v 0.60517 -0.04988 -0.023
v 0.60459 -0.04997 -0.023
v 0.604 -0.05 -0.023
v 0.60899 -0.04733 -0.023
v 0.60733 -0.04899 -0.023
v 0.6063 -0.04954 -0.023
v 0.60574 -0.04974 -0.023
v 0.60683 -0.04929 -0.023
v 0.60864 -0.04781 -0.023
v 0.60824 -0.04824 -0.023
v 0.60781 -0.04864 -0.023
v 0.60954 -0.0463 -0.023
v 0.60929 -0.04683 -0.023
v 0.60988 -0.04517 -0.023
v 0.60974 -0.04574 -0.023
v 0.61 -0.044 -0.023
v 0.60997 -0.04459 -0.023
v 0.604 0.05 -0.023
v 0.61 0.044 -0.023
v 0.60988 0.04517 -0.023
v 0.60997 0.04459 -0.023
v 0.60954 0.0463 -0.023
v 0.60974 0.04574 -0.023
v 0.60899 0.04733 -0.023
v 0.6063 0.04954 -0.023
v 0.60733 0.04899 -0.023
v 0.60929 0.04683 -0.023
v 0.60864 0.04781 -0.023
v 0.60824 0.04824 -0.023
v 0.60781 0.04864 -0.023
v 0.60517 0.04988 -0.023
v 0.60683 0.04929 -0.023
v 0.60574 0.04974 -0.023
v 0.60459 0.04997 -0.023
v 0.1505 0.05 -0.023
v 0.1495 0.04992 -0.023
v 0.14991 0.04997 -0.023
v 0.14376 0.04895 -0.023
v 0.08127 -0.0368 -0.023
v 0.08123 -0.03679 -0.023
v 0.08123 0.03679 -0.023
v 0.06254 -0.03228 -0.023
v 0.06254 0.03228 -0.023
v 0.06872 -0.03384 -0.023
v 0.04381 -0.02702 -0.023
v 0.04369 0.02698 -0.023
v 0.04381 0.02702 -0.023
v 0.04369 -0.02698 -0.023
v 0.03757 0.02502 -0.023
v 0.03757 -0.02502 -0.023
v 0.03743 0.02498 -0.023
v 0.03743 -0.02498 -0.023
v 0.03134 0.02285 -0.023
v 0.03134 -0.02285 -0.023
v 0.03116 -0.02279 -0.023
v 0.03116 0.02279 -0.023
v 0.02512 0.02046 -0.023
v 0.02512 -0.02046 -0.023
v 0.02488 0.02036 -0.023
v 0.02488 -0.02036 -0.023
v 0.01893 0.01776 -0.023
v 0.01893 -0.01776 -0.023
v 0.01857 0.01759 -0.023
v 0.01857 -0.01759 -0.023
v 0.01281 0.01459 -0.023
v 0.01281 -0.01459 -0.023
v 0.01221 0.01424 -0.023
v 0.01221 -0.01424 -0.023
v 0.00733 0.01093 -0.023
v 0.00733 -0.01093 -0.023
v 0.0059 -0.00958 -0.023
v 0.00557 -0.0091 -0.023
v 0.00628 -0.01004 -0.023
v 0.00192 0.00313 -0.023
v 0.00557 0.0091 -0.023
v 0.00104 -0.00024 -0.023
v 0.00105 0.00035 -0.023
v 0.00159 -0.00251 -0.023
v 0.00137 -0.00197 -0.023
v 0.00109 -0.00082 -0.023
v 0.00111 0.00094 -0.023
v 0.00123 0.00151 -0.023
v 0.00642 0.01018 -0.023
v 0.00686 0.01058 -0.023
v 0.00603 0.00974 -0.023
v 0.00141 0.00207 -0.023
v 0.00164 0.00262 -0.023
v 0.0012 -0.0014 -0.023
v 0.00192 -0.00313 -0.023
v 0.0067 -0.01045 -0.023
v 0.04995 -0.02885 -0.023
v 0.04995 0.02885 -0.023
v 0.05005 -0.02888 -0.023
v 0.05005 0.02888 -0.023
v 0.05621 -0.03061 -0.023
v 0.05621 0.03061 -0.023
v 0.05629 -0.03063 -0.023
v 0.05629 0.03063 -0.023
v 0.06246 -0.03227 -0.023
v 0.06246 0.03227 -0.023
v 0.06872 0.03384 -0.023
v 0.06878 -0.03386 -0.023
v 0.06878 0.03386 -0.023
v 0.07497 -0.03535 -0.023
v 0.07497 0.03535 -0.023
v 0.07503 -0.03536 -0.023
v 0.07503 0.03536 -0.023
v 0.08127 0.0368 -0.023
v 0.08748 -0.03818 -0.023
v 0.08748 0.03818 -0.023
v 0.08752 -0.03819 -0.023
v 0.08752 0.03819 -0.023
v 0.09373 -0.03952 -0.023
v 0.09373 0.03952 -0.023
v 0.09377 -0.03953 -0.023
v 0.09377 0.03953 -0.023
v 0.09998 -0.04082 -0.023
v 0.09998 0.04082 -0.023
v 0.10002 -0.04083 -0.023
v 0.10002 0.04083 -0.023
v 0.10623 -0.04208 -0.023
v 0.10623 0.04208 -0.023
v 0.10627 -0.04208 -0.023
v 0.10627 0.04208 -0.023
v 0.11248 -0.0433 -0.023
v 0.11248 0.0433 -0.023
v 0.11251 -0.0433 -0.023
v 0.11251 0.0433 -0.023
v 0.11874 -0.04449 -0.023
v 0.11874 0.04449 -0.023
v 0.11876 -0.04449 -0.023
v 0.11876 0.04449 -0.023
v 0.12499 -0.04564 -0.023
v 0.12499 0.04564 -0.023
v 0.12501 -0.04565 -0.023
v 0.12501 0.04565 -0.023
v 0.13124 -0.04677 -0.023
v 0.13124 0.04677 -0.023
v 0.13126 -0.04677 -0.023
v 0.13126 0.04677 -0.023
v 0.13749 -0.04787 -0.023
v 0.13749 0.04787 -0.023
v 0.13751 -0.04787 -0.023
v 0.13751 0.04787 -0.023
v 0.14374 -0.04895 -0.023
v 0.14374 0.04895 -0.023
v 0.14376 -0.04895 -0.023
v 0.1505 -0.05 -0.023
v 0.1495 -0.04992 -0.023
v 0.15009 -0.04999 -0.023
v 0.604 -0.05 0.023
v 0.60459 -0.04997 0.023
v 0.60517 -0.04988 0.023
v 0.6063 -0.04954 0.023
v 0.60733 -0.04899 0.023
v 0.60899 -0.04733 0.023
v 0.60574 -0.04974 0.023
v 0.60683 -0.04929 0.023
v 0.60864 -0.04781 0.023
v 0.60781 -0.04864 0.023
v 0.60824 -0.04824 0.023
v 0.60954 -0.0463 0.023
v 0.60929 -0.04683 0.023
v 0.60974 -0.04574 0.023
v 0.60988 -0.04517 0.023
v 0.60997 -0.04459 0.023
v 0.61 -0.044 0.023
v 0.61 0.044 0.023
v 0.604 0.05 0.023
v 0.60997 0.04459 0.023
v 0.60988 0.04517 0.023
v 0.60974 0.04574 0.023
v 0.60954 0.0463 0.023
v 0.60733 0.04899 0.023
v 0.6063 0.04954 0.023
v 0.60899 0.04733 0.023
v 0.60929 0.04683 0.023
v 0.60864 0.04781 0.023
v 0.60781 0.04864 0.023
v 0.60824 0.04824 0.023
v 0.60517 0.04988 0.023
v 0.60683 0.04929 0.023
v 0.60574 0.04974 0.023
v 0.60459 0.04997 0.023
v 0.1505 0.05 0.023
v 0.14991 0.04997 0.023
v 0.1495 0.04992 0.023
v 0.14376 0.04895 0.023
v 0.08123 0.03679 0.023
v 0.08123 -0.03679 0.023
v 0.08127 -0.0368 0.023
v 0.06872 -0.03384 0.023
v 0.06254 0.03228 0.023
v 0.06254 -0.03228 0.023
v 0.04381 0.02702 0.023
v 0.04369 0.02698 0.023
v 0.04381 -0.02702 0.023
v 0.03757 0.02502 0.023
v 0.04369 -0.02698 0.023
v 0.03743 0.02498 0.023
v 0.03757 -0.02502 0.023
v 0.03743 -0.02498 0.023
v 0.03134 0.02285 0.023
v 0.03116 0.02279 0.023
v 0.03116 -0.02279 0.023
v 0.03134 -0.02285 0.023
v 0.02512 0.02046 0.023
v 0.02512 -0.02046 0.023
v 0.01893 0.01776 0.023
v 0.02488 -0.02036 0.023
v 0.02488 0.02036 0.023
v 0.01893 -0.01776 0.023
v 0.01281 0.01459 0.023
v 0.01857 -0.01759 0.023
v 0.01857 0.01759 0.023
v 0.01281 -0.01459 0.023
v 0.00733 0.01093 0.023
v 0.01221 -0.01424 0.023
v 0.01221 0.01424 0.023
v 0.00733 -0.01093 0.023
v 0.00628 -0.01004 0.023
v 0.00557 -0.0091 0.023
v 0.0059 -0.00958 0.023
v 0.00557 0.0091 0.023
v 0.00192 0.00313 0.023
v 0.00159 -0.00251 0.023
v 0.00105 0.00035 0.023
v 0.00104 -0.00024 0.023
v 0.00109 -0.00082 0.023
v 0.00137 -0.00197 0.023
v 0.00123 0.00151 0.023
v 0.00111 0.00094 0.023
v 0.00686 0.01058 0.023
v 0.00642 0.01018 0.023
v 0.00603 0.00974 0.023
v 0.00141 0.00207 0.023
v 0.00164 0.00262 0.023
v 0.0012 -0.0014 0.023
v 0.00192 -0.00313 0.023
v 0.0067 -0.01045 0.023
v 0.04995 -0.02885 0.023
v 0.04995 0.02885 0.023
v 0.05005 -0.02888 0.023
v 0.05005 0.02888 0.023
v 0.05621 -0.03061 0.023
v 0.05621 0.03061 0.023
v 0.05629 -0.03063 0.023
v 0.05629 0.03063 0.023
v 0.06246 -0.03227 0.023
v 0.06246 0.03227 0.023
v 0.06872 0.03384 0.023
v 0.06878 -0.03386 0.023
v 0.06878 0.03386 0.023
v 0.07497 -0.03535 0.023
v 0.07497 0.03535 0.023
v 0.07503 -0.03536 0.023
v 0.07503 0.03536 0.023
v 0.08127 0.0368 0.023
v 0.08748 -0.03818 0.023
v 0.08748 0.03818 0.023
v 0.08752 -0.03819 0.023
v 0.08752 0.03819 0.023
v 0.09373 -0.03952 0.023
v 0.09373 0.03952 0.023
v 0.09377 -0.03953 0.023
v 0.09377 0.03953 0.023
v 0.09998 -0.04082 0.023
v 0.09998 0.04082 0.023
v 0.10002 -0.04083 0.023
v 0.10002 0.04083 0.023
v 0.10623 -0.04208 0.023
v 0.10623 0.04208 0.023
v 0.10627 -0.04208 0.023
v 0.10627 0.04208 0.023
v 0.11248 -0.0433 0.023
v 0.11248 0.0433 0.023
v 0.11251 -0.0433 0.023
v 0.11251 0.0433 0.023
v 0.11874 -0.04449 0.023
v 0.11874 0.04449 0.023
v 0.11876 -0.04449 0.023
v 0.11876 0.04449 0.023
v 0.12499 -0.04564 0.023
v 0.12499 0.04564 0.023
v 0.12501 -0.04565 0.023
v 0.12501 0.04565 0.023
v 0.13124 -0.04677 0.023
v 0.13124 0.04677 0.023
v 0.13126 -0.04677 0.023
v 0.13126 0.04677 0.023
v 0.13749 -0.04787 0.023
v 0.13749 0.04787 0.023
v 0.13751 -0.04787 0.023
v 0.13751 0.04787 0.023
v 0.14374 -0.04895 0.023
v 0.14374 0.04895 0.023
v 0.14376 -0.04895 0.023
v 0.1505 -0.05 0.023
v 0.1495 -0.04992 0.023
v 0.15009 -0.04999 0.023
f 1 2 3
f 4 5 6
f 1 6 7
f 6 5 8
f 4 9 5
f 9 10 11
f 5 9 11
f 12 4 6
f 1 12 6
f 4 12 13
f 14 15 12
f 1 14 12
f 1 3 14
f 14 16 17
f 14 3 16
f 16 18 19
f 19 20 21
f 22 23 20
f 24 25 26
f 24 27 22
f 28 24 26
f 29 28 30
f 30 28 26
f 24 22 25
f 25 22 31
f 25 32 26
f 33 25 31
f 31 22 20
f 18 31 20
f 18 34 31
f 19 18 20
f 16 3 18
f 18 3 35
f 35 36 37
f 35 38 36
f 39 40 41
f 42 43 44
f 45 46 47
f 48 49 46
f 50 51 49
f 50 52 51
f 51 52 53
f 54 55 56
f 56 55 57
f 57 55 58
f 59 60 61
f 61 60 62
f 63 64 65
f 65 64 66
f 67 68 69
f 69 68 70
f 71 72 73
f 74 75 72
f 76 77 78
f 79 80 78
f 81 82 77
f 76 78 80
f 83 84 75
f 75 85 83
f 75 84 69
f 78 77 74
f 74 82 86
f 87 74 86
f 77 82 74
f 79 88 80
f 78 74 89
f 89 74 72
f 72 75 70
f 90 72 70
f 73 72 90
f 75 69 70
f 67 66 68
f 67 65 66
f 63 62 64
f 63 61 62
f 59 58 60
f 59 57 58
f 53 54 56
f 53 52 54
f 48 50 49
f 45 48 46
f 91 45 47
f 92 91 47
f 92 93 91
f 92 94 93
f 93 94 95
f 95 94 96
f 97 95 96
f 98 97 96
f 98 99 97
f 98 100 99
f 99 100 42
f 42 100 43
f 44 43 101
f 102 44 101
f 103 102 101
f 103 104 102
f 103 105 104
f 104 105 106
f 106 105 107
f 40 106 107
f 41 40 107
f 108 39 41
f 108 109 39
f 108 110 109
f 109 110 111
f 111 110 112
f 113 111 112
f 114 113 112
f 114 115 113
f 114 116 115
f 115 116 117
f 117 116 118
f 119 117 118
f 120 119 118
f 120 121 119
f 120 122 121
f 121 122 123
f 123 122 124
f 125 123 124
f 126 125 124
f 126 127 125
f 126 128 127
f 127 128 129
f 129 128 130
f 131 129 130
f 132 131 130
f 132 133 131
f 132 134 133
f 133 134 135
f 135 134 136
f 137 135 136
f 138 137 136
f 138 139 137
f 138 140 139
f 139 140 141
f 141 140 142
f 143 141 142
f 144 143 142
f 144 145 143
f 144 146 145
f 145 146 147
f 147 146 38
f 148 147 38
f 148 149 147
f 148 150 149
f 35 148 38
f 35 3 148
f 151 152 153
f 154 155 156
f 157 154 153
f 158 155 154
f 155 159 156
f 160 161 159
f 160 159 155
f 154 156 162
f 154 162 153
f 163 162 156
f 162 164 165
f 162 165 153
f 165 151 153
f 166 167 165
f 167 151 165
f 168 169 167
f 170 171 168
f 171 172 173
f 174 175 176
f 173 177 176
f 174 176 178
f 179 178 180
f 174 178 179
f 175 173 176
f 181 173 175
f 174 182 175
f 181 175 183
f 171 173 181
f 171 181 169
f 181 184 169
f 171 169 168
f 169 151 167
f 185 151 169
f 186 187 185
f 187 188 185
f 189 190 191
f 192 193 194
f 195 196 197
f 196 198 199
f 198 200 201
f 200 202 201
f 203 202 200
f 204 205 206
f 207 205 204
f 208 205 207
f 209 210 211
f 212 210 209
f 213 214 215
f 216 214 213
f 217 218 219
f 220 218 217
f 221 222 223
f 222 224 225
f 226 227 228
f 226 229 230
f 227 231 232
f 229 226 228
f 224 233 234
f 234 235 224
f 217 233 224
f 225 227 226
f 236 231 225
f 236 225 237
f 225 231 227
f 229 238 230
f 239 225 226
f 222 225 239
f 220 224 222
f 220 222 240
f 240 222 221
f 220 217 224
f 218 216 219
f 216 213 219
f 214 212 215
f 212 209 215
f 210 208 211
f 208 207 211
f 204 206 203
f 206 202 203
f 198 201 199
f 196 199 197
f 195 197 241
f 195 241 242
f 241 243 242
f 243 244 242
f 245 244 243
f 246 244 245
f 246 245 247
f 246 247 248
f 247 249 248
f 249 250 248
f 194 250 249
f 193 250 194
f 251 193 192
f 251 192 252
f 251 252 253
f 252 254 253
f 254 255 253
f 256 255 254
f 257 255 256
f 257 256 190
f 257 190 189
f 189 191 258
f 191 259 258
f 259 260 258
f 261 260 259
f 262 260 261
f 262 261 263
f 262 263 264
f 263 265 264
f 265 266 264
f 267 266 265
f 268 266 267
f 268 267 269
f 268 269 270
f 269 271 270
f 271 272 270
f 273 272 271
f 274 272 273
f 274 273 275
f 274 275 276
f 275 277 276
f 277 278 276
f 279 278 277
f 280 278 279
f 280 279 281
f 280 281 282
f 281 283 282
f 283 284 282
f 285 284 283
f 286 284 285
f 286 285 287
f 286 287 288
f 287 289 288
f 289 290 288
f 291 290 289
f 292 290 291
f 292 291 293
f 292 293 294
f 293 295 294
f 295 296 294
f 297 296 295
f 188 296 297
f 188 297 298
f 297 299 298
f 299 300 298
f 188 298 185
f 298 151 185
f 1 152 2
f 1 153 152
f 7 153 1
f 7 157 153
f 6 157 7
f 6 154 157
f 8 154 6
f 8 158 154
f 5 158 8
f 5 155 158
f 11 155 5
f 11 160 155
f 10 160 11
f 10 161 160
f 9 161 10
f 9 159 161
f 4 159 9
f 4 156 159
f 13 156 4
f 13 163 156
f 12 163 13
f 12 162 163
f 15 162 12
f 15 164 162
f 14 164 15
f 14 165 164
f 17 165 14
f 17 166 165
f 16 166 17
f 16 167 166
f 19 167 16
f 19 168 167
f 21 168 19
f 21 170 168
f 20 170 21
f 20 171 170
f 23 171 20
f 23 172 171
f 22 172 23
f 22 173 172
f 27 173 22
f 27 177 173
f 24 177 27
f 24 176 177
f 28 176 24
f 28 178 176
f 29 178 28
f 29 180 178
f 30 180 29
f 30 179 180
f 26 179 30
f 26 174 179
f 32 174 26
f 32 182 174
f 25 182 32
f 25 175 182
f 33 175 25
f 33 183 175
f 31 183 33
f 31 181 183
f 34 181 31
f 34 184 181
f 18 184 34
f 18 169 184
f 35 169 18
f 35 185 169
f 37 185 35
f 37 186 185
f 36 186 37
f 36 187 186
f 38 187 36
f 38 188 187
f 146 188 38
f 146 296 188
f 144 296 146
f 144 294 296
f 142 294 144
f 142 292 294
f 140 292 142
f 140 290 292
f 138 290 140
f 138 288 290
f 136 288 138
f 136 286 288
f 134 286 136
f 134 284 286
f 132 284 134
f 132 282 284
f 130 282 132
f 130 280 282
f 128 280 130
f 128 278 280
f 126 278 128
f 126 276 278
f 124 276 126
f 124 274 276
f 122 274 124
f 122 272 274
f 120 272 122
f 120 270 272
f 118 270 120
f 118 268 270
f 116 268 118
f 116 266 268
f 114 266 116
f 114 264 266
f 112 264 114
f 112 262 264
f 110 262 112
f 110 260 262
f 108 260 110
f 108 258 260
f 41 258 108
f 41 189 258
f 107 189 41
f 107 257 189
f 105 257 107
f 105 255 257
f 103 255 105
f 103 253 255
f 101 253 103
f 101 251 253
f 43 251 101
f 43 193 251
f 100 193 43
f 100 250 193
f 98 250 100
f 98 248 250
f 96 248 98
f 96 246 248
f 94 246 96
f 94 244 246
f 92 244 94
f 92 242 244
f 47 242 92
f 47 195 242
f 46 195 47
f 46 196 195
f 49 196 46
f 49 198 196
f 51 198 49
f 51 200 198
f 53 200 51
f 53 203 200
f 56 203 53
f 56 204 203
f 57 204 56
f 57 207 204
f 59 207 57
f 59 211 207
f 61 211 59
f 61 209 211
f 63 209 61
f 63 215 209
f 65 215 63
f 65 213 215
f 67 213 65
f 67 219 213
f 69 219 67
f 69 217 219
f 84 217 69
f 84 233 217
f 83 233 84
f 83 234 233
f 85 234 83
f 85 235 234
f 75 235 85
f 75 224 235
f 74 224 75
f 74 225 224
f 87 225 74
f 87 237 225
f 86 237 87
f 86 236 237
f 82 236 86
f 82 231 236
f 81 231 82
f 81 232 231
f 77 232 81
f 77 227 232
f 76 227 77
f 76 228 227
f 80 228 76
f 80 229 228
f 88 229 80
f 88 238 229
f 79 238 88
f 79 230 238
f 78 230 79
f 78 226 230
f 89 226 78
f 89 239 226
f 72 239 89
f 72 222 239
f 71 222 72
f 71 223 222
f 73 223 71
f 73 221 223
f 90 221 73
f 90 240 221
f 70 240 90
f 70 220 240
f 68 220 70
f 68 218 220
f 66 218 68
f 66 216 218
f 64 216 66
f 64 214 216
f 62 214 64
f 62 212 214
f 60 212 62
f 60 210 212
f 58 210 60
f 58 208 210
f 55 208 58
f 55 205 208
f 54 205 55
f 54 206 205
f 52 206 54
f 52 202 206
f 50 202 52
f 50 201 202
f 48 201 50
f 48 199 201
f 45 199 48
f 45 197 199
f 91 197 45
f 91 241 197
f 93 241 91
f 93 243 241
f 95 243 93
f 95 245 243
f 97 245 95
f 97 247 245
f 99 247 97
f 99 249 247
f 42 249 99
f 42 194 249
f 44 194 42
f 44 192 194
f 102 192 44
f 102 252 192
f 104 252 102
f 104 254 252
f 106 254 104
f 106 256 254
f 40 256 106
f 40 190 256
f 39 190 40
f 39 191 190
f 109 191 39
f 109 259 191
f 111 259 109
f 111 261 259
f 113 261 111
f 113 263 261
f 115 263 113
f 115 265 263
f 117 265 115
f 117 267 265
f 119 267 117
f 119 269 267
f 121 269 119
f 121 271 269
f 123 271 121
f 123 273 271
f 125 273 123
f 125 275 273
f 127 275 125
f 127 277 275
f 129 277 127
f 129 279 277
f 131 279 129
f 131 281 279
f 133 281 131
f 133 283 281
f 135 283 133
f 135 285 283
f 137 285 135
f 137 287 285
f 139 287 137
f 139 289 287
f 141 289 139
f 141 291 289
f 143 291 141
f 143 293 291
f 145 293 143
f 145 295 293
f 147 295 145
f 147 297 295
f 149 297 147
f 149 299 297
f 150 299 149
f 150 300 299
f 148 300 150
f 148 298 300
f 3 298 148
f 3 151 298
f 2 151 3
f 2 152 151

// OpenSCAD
// AR-Mini C085 · the wetted part of one hull as a double body (mirrored at the waterline), in metres.
// Outline copied from module outline2d() in cad/openscad/AR-Mini_v1.scad. x from the bow, waterline at z = 0.
hull_L = 610; hull_W = 100; bow_len = 150; tip_r = 6;
draft = 23;   // mm at 2.5 kg. SOURCE: C063 mass 2.5 kg × 9.1 mm/kg (C007 measured waterplane)
$fn = 64;
function bow_side(n, s) = [ for (i = [1:n]) let(t = i/n) [bow_len*t, s*(hull_W/2)*sqrt(t)] ];
module outline2d() offset(r = tip_r) offset(r = -tip_r) polygon(concat([[0, 0]], bow_side(24, 1),
    [[hull_L, hull_W/2], [hull_L, -hull_W/2]], [ for (i = [24:-1:1]) let(t = i/24) [bow_len*t, -(hull_W/2)*sqrt(t)] ]));
scale(0.001) translate([0, 0, -draft]) linear_extrude(2*draft) outline2d();
